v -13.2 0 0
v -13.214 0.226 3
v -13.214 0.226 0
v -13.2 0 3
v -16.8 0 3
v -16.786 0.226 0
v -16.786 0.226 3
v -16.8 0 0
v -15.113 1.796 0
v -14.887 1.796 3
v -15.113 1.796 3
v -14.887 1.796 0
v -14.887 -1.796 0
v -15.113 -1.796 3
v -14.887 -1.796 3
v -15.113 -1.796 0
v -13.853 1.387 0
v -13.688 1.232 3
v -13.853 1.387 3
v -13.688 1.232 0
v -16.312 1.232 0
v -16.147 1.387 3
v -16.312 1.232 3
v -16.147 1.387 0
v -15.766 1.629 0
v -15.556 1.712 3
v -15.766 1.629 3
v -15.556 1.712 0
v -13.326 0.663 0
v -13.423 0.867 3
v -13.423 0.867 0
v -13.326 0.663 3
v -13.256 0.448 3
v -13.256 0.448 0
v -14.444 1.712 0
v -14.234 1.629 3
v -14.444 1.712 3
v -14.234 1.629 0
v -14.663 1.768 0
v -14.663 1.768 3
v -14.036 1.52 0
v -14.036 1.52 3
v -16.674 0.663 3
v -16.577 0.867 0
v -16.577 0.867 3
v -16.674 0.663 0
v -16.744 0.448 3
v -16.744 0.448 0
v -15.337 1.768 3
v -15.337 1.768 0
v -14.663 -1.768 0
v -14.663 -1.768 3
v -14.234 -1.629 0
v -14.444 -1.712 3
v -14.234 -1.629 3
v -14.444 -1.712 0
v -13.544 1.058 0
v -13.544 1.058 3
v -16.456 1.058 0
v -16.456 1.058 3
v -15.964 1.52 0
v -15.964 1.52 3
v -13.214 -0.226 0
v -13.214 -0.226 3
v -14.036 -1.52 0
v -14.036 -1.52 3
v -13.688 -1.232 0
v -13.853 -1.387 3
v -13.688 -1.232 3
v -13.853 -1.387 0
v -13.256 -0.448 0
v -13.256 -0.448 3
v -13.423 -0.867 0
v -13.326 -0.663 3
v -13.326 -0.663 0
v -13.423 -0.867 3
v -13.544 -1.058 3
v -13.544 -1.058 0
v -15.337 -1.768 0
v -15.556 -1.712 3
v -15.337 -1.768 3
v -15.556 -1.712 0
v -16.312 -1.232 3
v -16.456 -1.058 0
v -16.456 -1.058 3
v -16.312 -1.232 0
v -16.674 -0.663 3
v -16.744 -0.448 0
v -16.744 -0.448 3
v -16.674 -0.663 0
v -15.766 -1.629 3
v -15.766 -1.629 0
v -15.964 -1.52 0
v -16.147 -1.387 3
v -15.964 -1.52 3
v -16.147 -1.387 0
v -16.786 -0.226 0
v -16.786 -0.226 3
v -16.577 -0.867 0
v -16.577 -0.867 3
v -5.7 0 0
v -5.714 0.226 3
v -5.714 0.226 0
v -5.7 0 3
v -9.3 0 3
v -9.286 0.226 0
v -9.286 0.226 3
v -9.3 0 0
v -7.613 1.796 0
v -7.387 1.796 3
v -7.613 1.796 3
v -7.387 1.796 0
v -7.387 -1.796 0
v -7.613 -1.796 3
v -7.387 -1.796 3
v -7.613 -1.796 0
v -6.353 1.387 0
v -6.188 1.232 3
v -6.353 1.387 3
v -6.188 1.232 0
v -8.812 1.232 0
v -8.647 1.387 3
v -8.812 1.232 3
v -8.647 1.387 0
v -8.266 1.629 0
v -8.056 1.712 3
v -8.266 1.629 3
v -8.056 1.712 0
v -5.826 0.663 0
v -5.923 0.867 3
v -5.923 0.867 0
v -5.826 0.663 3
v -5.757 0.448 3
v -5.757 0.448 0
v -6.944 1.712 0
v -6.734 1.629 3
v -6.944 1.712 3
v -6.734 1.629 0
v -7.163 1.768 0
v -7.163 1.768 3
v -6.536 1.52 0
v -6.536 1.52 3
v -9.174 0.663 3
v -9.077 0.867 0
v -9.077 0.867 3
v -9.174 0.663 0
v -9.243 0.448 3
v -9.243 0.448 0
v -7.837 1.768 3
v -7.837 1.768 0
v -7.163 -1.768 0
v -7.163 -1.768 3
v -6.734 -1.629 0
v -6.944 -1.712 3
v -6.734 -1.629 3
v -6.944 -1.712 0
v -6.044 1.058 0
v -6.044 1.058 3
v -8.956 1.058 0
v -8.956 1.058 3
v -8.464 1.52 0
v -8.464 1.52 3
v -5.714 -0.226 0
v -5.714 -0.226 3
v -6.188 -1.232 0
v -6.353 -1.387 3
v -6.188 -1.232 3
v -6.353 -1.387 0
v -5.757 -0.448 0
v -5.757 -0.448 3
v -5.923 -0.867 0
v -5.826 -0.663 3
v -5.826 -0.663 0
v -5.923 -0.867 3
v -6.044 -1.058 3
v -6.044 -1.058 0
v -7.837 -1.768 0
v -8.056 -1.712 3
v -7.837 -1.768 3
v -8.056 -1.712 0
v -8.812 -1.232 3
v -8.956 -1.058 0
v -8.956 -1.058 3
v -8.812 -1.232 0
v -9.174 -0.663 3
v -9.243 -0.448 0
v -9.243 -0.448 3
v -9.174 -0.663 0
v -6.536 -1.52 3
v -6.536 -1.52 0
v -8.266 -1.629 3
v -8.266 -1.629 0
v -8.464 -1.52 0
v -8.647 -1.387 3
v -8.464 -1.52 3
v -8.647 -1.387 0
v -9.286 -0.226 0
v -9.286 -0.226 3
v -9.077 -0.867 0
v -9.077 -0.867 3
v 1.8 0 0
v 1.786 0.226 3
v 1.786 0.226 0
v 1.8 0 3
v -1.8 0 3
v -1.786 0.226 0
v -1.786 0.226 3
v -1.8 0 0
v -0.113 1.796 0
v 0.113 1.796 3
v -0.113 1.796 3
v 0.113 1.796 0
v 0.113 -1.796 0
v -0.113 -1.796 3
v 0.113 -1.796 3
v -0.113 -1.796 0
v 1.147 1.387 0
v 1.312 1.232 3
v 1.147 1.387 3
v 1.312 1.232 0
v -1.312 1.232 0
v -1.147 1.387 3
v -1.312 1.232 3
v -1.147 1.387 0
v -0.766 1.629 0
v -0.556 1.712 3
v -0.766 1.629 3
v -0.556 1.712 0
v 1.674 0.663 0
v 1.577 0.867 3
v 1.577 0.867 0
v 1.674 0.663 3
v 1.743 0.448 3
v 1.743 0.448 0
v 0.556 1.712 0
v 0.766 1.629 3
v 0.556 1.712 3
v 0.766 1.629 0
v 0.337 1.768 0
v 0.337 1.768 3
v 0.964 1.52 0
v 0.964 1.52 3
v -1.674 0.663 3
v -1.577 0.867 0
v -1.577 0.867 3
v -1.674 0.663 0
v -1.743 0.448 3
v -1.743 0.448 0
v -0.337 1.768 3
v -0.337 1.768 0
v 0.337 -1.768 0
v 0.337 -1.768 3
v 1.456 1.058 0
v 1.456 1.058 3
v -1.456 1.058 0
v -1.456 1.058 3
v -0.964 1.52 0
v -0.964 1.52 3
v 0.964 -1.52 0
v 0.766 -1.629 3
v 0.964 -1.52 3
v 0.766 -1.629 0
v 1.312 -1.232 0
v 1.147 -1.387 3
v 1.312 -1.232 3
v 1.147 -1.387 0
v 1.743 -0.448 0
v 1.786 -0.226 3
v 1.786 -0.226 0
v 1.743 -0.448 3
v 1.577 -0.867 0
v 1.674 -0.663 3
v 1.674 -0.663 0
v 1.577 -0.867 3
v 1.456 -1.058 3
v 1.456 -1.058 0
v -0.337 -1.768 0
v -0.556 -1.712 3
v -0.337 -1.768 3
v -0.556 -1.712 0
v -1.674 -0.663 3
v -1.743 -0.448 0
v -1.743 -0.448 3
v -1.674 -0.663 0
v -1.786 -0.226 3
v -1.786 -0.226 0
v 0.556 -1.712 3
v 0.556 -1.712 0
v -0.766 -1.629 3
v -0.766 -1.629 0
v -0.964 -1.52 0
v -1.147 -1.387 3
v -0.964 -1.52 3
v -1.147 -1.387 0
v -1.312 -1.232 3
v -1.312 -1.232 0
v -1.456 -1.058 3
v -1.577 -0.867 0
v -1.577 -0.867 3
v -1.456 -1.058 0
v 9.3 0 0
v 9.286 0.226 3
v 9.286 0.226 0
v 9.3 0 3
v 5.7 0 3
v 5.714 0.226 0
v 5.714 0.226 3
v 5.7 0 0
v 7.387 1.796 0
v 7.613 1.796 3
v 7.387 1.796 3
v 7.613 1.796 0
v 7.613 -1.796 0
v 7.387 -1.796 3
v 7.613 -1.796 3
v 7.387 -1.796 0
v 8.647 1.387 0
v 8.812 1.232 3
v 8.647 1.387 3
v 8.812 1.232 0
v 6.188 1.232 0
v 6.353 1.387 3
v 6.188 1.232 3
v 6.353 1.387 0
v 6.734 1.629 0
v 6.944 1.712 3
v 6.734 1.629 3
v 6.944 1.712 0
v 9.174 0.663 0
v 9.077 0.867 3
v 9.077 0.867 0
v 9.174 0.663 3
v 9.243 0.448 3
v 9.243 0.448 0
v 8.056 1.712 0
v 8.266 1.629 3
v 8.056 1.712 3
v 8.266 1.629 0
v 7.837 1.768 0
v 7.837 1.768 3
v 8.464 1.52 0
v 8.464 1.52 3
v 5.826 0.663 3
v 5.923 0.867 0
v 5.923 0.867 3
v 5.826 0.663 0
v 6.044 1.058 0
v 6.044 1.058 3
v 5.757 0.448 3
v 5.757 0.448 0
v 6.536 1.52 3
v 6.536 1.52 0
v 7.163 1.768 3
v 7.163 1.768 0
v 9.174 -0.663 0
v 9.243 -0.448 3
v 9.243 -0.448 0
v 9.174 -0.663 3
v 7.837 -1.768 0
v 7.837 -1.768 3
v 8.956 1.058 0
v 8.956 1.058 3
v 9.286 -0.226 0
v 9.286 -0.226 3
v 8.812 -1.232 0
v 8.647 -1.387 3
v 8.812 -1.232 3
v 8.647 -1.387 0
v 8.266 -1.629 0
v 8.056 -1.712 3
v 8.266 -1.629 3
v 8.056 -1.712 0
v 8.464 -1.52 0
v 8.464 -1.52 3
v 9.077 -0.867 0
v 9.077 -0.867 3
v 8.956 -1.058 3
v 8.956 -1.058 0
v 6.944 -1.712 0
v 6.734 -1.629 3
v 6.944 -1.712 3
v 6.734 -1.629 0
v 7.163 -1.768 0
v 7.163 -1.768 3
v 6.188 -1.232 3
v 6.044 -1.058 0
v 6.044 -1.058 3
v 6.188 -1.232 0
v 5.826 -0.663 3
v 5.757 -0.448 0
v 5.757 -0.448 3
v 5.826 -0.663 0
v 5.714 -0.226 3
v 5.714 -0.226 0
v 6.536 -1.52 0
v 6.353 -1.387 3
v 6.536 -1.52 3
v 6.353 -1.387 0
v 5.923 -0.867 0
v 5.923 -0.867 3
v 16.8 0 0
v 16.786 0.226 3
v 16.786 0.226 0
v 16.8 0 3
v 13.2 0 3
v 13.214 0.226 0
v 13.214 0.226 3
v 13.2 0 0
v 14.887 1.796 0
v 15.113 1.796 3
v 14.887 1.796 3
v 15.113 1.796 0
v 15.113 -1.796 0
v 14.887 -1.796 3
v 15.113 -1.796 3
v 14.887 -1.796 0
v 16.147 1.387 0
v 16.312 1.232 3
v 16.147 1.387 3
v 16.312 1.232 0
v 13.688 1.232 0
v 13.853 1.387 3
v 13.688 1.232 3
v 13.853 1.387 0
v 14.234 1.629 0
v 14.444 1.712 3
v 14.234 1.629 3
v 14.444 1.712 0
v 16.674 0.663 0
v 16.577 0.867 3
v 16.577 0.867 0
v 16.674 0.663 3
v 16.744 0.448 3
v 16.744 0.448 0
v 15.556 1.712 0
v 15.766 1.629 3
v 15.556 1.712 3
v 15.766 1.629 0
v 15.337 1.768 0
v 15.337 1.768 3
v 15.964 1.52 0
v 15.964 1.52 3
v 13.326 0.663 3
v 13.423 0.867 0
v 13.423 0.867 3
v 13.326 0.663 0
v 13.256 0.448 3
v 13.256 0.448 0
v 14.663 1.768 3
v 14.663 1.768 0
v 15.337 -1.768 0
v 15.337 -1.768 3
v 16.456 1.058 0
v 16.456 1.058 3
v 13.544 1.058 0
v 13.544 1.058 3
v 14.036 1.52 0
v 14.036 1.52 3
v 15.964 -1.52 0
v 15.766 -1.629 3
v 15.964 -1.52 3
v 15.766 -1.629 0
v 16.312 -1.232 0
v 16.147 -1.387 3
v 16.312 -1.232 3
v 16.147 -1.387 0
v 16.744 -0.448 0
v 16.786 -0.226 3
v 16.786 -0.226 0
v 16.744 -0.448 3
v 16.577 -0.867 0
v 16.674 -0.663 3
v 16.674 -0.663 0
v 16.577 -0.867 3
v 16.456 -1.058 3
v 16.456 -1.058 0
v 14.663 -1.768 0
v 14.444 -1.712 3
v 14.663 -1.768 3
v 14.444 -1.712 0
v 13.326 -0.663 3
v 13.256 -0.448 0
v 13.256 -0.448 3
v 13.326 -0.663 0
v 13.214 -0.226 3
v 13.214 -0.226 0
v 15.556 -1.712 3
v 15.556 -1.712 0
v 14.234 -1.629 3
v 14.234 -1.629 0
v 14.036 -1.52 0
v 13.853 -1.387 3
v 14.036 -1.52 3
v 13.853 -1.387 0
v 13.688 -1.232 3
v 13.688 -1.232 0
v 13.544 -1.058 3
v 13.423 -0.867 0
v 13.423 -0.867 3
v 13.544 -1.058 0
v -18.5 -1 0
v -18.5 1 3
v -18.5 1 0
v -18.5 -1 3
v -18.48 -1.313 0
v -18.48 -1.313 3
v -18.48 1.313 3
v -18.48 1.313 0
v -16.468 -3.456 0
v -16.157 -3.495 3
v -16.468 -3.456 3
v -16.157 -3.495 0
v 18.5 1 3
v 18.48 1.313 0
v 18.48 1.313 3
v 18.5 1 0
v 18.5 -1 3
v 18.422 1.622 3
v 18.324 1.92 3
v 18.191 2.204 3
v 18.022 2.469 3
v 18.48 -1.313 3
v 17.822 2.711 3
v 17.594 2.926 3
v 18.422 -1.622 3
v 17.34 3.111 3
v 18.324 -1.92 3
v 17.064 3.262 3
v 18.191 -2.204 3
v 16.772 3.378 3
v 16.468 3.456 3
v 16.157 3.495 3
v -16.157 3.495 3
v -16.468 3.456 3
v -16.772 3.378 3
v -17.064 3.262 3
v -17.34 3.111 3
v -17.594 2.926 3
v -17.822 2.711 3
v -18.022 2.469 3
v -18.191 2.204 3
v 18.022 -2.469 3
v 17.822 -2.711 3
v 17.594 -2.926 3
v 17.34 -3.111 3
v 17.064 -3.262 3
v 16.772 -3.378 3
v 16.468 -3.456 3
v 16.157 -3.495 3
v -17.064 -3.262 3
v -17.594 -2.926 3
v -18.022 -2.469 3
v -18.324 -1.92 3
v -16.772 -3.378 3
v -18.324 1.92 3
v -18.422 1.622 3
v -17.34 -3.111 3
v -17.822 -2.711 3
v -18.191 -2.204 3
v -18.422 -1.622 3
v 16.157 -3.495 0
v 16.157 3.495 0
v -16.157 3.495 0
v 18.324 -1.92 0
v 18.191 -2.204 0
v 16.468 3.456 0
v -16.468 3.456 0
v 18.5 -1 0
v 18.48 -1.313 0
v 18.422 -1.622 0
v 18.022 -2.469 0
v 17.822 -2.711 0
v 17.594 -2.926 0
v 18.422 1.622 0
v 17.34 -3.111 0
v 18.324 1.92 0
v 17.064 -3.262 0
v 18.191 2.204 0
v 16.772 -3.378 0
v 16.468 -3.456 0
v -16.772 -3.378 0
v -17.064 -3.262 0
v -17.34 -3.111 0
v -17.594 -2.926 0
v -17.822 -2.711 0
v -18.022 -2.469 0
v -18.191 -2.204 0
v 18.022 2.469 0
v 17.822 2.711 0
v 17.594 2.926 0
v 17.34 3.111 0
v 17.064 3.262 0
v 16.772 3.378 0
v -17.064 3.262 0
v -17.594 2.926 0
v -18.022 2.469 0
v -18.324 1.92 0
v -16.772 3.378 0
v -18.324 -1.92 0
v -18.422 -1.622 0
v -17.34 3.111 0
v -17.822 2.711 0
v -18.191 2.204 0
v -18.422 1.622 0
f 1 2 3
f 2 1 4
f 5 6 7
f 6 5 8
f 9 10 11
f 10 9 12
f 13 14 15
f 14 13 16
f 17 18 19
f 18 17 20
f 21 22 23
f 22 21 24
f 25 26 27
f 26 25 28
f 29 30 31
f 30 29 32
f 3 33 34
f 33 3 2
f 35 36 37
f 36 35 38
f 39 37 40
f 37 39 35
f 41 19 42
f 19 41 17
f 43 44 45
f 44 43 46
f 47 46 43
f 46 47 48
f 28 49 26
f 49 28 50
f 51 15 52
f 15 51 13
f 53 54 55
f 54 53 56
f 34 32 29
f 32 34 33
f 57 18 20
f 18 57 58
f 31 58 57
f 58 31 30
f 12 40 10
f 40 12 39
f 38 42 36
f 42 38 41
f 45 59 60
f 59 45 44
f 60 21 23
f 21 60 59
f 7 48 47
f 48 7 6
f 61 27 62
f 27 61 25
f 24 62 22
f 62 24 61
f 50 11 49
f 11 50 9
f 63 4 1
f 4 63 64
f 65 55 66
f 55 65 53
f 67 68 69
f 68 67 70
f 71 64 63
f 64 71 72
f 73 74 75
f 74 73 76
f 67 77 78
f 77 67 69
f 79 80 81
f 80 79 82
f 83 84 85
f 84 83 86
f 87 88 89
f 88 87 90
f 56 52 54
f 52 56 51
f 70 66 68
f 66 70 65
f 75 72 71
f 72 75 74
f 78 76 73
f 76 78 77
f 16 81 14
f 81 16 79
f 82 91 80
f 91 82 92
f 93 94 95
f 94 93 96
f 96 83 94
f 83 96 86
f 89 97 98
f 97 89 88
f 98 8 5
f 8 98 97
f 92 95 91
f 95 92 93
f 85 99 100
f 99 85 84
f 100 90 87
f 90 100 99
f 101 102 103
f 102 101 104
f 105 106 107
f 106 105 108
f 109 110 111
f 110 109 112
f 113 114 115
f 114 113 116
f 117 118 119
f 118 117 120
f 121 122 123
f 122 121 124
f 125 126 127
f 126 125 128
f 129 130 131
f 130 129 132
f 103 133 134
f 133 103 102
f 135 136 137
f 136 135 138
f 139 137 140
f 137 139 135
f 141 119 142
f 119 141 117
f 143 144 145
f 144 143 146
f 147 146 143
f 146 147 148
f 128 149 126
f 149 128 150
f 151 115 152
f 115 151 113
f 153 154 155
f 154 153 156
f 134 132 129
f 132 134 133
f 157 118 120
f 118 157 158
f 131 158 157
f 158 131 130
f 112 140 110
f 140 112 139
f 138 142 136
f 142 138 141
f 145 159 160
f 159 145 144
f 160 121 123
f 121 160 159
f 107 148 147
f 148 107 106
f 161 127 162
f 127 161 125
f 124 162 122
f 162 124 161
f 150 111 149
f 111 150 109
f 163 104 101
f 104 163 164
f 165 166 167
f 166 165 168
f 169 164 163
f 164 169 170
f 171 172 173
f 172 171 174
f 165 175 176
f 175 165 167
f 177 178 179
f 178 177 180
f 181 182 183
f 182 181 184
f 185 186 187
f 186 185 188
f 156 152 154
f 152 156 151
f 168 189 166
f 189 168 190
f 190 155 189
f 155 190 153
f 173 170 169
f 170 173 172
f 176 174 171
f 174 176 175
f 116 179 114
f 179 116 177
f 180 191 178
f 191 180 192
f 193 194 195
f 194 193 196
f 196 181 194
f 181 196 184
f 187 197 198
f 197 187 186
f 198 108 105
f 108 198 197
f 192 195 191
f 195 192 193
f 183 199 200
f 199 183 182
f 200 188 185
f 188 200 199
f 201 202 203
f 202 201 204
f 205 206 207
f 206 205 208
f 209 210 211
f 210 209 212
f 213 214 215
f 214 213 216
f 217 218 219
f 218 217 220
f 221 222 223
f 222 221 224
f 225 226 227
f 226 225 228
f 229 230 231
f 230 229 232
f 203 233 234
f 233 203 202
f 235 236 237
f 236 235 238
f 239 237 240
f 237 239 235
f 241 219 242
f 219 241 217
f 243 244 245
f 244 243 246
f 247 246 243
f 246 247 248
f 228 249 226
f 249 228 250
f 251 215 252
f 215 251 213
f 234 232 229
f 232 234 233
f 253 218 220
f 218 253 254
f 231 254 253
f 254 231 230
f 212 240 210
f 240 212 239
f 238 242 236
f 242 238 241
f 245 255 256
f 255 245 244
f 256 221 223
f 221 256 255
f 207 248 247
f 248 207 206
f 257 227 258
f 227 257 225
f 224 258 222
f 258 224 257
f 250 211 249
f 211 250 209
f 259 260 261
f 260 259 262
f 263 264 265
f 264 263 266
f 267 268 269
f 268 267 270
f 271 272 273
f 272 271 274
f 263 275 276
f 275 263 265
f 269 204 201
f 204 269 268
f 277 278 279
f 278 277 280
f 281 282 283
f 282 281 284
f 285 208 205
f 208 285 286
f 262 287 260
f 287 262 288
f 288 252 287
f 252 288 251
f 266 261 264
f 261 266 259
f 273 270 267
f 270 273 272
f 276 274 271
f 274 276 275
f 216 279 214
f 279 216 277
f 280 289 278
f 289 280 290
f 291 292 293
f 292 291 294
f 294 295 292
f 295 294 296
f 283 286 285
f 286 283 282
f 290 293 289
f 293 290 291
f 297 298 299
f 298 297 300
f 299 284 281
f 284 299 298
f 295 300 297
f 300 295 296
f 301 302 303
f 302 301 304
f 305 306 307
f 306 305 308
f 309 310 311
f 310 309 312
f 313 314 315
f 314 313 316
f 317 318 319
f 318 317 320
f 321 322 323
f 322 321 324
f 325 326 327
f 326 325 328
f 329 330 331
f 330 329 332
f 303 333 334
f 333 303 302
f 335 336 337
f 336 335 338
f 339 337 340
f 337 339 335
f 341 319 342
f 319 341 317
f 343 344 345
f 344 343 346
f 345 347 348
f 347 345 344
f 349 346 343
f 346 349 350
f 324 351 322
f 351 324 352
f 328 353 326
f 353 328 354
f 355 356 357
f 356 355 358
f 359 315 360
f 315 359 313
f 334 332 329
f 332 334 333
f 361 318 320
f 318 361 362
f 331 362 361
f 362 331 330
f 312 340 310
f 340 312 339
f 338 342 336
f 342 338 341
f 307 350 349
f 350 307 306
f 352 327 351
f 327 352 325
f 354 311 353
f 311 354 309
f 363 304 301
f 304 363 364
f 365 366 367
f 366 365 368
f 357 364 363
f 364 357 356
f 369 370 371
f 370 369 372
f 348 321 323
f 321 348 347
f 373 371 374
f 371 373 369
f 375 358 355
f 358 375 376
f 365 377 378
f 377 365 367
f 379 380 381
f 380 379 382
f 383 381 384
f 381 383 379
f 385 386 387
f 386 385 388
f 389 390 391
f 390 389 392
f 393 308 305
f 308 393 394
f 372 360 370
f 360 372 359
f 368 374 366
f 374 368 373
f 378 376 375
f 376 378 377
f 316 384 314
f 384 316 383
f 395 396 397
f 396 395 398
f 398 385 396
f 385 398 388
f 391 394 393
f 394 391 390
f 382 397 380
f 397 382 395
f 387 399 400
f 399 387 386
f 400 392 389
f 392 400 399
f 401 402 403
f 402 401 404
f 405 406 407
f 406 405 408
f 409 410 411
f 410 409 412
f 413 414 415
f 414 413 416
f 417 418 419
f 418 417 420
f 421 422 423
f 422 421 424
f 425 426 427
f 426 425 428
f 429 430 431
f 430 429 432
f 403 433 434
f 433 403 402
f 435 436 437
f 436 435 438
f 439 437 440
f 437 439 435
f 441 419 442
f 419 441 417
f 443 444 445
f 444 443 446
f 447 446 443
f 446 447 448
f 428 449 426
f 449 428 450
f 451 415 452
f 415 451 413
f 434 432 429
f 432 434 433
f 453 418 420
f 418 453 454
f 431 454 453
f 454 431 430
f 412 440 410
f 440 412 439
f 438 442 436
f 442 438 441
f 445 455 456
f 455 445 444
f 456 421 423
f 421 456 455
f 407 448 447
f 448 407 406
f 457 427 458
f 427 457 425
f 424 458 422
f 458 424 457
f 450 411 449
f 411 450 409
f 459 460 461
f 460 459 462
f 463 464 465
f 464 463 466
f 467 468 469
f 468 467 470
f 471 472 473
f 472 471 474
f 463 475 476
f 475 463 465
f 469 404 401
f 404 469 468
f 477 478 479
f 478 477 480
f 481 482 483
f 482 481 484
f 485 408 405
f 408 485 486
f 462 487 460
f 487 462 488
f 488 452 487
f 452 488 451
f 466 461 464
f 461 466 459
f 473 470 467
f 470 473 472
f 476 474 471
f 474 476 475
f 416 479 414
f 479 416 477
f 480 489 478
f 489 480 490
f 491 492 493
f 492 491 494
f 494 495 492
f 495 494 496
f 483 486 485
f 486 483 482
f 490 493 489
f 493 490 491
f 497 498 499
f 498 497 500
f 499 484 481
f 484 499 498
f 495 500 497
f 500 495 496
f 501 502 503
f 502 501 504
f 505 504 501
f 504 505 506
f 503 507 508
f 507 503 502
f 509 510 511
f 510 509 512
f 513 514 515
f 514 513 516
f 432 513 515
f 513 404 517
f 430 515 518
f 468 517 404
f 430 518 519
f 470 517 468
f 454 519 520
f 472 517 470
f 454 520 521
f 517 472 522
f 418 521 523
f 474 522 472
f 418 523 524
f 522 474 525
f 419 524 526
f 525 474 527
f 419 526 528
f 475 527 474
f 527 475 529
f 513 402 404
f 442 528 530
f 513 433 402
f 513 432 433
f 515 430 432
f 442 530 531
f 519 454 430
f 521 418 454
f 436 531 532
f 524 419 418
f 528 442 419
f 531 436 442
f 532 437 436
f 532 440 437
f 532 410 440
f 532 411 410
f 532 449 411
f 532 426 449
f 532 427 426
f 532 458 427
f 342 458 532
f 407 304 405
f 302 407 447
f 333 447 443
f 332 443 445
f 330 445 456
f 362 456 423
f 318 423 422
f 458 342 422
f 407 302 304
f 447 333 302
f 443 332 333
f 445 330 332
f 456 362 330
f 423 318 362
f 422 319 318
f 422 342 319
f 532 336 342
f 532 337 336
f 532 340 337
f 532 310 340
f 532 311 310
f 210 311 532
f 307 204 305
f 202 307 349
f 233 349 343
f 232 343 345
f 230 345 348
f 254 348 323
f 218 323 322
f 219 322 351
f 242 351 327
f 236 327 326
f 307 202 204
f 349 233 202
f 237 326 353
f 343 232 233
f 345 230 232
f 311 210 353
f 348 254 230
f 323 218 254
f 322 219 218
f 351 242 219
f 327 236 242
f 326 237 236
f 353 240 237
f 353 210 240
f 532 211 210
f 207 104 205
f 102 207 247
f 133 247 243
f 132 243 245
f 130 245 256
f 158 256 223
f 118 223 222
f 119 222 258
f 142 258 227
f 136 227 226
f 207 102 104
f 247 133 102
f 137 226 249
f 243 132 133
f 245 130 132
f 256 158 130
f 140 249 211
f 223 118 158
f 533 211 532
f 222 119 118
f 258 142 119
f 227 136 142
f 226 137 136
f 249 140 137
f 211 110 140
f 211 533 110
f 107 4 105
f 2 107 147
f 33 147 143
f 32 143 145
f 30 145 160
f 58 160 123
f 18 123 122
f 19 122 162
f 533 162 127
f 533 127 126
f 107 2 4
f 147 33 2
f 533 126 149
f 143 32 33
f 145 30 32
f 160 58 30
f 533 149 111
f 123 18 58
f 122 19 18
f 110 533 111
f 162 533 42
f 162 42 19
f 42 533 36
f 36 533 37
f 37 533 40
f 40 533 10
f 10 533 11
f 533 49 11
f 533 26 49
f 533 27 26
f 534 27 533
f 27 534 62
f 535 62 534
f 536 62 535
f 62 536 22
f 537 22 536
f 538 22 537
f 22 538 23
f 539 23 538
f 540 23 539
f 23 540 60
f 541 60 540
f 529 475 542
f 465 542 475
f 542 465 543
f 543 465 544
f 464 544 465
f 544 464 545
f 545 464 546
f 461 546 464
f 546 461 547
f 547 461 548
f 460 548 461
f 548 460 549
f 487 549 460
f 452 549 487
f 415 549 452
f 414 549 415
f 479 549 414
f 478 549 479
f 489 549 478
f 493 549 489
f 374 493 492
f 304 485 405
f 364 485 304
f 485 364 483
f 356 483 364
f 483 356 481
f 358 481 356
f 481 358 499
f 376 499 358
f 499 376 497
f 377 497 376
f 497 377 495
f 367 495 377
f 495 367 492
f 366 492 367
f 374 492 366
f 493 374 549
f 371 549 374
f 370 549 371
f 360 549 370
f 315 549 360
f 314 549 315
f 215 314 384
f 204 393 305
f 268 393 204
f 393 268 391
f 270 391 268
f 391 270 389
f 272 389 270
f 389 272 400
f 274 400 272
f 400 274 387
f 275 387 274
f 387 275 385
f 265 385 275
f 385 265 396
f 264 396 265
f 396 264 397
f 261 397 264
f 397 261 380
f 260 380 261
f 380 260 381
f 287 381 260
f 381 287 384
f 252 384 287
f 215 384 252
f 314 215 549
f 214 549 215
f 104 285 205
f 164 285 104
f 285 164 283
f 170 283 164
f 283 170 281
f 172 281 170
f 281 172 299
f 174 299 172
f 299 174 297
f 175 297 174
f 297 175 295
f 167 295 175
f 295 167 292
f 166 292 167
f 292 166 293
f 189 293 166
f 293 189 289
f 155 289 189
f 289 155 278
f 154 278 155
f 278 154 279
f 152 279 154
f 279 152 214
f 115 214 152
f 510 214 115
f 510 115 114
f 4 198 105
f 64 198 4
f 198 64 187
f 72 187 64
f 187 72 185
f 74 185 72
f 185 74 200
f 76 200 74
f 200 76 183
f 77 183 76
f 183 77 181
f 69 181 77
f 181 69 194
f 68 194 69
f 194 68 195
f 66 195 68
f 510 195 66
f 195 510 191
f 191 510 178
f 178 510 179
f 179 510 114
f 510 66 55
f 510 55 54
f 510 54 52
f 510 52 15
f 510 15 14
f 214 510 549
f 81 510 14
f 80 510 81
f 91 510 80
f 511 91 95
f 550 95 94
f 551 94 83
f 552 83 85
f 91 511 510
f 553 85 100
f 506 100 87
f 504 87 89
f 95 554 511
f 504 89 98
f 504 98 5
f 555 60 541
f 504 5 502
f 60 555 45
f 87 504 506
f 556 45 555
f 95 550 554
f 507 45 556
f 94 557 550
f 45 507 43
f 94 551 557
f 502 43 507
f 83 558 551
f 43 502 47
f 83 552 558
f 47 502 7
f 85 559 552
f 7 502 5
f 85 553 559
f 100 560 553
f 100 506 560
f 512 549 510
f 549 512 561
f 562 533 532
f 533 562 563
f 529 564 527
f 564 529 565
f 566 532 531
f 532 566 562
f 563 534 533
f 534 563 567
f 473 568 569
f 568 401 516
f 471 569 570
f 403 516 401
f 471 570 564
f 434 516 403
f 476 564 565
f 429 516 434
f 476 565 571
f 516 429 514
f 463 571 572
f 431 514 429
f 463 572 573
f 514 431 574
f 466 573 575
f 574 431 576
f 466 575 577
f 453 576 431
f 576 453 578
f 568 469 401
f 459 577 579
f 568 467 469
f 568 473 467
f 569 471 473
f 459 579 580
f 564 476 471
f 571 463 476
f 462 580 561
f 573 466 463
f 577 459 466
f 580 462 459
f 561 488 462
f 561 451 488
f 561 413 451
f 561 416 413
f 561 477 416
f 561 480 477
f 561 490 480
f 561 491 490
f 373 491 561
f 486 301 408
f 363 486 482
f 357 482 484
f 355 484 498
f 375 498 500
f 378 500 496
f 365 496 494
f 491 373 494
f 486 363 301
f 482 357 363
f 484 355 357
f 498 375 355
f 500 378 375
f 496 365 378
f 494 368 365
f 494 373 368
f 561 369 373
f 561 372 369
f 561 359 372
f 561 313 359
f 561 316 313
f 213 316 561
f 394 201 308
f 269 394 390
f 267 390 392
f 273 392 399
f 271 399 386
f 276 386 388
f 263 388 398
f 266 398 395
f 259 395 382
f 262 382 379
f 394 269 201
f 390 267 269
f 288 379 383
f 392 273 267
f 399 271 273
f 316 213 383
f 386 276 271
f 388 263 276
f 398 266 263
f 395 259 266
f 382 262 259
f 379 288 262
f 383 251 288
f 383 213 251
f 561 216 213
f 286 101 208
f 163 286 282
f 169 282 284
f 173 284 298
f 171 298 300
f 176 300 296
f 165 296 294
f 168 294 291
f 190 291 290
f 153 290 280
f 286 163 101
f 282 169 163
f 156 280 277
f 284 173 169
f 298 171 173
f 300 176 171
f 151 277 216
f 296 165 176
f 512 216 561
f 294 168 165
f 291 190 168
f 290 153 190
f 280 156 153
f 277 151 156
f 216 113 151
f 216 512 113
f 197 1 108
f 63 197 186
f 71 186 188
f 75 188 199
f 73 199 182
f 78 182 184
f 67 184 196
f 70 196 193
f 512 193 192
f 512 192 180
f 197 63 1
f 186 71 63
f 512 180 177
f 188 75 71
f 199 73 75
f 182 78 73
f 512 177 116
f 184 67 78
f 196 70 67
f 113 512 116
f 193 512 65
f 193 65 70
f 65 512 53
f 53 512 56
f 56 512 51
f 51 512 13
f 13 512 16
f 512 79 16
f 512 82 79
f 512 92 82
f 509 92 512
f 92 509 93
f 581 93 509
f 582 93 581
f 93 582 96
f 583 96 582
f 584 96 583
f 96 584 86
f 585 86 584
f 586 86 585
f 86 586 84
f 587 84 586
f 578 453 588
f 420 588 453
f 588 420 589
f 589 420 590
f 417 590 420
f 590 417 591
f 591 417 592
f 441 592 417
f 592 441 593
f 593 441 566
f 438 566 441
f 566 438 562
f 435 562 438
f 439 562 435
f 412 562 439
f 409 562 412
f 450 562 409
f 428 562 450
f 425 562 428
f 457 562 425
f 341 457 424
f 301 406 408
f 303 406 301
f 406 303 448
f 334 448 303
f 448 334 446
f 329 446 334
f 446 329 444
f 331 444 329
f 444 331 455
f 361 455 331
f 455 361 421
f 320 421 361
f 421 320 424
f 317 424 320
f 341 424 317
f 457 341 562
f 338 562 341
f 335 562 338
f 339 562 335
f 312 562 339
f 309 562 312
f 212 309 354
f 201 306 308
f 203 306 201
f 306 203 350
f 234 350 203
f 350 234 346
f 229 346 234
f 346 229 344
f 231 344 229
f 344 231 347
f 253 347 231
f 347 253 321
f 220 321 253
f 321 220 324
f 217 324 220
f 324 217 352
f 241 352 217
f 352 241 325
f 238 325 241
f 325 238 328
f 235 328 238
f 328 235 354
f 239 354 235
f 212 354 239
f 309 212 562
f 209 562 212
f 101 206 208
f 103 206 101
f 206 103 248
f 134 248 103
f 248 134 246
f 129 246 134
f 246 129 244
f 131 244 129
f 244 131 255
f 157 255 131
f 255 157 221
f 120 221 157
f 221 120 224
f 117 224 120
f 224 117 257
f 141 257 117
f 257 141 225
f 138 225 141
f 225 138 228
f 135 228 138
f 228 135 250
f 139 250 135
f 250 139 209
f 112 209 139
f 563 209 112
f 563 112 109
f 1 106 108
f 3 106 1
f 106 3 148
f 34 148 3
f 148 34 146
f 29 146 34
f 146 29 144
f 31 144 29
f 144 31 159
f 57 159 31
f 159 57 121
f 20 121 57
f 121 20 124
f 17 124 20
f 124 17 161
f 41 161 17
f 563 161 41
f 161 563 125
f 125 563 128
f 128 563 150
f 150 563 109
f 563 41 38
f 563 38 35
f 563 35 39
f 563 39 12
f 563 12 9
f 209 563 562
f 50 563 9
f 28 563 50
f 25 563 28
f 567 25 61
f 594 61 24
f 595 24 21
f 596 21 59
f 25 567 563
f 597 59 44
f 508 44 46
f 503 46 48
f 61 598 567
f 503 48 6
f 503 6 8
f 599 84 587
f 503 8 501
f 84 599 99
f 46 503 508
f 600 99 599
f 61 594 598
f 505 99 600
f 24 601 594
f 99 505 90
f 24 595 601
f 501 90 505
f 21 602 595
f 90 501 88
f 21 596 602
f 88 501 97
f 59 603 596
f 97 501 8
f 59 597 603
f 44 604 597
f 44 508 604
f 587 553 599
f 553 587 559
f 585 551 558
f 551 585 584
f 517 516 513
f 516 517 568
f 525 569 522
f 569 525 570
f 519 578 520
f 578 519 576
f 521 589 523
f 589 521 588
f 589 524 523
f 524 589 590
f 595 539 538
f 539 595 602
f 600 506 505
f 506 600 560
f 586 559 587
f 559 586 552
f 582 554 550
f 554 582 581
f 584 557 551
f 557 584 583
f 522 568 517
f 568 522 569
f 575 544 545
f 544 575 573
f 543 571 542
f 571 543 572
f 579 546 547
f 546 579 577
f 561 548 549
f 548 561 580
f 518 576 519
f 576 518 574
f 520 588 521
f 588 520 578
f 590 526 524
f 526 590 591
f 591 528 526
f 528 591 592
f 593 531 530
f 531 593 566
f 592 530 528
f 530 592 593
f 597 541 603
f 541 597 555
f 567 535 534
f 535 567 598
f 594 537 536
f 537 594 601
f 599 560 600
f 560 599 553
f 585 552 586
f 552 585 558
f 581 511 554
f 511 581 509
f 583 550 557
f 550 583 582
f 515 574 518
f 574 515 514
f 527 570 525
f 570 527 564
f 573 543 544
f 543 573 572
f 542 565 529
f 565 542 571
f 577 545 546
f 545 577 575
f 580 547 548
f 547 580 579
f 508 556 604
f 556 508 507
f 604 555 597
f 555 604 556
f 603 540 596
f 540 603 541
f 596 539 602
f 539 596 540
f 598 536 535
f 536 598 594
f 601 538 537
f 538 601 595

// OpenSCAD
$fn = 50;


difference() {
	union() {
		translate(v = [0, 0, 0]) {
			rotate(a = [0, 0, 0]) {
				hull() {
					translate(v = [-16.0000000000, 1.0000000000, 0]) {
						rotate(a = [0, 0, 0]) {
							translate(v = [0, 0, 0]) {
								rotate(a = [0, 0, 0]) {
									cylinder(h = 3, r = 2.5000000000);
								}
							}
						}
					}
					translate(v = [16.0000000000, 1.0000000000, 0]) {
						rotate(a = [0, 0, 0]) {
							translate(v = [0, 0, 0]) {
								rotate(a = [0, 0, 0]) {
									cylinder(h = 3, r = 2.5000000000);
								}
							}
						}
					}
					translate(v = [-16.0000000000, -1.0000000000, 0]) {
						rotate(a = [0, 0, 0]) {
							translate(v = [0, 0, 0]) {
								rotate(a = [0, 0, 0]) {
									cylinder(h = 3, r = 2.5000000000);
								}
							}
						}
					}
					translate(v = [16.0000000000, -1.0000000000, 0]) {
						rotate(a = [0, 0, 0]) {
							translate(v = [0, 0, 0]) {
								rotate(a = [0, 0, 0]) {
									cylinder(h = 3, r = 2.5000000000);
								}
							}
						}
					}
				}
			}
		}
	}
	union() {
		translate(v = [-15.0000000000, 0.0000000000, 0]) {
			rotate(a = [0, 0, 0]) {
				translate(v = [0, 0, -50]) {
					rotate(a = [0, 0, 0]) {
						cylinder(h = 100, r = 1.8000000000);
					}
				}
			}
		}
		translate(v = [-7.5000000000, 0.0000000000, 0]) {
			rotate(a = [0, 0, 0]) {
				translate(v = [0, 0, -50]) {
					rotate(a = [0, 0, 0]) {
						cylinder(h = 100, r = 1.8000000000);
					}
				}
			}
		}
		translate(v = [0.0000000000, 0.0000000000, 0]) {
			rotate(a = [0, 0, 0]) {
				translate(v = [0, 0, -50]) {
					rotate(a = [0, 0, 0]) {
						cylinder(h = 100, r = 1.8000000000);
					}
				}
			}
		}
		translate(v = [7.5000000000, 0.0000000000, 0]) {
			rotate(a = [0, 0, 0]) {
				translate(v = [0, 0, -50]) {
					rotate(a = [0, 0, 0]) {
						cylinder(h = 100, r = 1.8000000000);
					}
				}
			}
		}
		translate(v = [15.0000000000, 0.0000000000, 0]) {
			rotate(a = [0, 0, 0]) {
				translate(v = [0, 0, -50]) {
					rotate(a = [0, 0, 0]) {
						cylinder(h = 100, r = 1.8000000000);
					}
				}
			}
		}
	}
}
